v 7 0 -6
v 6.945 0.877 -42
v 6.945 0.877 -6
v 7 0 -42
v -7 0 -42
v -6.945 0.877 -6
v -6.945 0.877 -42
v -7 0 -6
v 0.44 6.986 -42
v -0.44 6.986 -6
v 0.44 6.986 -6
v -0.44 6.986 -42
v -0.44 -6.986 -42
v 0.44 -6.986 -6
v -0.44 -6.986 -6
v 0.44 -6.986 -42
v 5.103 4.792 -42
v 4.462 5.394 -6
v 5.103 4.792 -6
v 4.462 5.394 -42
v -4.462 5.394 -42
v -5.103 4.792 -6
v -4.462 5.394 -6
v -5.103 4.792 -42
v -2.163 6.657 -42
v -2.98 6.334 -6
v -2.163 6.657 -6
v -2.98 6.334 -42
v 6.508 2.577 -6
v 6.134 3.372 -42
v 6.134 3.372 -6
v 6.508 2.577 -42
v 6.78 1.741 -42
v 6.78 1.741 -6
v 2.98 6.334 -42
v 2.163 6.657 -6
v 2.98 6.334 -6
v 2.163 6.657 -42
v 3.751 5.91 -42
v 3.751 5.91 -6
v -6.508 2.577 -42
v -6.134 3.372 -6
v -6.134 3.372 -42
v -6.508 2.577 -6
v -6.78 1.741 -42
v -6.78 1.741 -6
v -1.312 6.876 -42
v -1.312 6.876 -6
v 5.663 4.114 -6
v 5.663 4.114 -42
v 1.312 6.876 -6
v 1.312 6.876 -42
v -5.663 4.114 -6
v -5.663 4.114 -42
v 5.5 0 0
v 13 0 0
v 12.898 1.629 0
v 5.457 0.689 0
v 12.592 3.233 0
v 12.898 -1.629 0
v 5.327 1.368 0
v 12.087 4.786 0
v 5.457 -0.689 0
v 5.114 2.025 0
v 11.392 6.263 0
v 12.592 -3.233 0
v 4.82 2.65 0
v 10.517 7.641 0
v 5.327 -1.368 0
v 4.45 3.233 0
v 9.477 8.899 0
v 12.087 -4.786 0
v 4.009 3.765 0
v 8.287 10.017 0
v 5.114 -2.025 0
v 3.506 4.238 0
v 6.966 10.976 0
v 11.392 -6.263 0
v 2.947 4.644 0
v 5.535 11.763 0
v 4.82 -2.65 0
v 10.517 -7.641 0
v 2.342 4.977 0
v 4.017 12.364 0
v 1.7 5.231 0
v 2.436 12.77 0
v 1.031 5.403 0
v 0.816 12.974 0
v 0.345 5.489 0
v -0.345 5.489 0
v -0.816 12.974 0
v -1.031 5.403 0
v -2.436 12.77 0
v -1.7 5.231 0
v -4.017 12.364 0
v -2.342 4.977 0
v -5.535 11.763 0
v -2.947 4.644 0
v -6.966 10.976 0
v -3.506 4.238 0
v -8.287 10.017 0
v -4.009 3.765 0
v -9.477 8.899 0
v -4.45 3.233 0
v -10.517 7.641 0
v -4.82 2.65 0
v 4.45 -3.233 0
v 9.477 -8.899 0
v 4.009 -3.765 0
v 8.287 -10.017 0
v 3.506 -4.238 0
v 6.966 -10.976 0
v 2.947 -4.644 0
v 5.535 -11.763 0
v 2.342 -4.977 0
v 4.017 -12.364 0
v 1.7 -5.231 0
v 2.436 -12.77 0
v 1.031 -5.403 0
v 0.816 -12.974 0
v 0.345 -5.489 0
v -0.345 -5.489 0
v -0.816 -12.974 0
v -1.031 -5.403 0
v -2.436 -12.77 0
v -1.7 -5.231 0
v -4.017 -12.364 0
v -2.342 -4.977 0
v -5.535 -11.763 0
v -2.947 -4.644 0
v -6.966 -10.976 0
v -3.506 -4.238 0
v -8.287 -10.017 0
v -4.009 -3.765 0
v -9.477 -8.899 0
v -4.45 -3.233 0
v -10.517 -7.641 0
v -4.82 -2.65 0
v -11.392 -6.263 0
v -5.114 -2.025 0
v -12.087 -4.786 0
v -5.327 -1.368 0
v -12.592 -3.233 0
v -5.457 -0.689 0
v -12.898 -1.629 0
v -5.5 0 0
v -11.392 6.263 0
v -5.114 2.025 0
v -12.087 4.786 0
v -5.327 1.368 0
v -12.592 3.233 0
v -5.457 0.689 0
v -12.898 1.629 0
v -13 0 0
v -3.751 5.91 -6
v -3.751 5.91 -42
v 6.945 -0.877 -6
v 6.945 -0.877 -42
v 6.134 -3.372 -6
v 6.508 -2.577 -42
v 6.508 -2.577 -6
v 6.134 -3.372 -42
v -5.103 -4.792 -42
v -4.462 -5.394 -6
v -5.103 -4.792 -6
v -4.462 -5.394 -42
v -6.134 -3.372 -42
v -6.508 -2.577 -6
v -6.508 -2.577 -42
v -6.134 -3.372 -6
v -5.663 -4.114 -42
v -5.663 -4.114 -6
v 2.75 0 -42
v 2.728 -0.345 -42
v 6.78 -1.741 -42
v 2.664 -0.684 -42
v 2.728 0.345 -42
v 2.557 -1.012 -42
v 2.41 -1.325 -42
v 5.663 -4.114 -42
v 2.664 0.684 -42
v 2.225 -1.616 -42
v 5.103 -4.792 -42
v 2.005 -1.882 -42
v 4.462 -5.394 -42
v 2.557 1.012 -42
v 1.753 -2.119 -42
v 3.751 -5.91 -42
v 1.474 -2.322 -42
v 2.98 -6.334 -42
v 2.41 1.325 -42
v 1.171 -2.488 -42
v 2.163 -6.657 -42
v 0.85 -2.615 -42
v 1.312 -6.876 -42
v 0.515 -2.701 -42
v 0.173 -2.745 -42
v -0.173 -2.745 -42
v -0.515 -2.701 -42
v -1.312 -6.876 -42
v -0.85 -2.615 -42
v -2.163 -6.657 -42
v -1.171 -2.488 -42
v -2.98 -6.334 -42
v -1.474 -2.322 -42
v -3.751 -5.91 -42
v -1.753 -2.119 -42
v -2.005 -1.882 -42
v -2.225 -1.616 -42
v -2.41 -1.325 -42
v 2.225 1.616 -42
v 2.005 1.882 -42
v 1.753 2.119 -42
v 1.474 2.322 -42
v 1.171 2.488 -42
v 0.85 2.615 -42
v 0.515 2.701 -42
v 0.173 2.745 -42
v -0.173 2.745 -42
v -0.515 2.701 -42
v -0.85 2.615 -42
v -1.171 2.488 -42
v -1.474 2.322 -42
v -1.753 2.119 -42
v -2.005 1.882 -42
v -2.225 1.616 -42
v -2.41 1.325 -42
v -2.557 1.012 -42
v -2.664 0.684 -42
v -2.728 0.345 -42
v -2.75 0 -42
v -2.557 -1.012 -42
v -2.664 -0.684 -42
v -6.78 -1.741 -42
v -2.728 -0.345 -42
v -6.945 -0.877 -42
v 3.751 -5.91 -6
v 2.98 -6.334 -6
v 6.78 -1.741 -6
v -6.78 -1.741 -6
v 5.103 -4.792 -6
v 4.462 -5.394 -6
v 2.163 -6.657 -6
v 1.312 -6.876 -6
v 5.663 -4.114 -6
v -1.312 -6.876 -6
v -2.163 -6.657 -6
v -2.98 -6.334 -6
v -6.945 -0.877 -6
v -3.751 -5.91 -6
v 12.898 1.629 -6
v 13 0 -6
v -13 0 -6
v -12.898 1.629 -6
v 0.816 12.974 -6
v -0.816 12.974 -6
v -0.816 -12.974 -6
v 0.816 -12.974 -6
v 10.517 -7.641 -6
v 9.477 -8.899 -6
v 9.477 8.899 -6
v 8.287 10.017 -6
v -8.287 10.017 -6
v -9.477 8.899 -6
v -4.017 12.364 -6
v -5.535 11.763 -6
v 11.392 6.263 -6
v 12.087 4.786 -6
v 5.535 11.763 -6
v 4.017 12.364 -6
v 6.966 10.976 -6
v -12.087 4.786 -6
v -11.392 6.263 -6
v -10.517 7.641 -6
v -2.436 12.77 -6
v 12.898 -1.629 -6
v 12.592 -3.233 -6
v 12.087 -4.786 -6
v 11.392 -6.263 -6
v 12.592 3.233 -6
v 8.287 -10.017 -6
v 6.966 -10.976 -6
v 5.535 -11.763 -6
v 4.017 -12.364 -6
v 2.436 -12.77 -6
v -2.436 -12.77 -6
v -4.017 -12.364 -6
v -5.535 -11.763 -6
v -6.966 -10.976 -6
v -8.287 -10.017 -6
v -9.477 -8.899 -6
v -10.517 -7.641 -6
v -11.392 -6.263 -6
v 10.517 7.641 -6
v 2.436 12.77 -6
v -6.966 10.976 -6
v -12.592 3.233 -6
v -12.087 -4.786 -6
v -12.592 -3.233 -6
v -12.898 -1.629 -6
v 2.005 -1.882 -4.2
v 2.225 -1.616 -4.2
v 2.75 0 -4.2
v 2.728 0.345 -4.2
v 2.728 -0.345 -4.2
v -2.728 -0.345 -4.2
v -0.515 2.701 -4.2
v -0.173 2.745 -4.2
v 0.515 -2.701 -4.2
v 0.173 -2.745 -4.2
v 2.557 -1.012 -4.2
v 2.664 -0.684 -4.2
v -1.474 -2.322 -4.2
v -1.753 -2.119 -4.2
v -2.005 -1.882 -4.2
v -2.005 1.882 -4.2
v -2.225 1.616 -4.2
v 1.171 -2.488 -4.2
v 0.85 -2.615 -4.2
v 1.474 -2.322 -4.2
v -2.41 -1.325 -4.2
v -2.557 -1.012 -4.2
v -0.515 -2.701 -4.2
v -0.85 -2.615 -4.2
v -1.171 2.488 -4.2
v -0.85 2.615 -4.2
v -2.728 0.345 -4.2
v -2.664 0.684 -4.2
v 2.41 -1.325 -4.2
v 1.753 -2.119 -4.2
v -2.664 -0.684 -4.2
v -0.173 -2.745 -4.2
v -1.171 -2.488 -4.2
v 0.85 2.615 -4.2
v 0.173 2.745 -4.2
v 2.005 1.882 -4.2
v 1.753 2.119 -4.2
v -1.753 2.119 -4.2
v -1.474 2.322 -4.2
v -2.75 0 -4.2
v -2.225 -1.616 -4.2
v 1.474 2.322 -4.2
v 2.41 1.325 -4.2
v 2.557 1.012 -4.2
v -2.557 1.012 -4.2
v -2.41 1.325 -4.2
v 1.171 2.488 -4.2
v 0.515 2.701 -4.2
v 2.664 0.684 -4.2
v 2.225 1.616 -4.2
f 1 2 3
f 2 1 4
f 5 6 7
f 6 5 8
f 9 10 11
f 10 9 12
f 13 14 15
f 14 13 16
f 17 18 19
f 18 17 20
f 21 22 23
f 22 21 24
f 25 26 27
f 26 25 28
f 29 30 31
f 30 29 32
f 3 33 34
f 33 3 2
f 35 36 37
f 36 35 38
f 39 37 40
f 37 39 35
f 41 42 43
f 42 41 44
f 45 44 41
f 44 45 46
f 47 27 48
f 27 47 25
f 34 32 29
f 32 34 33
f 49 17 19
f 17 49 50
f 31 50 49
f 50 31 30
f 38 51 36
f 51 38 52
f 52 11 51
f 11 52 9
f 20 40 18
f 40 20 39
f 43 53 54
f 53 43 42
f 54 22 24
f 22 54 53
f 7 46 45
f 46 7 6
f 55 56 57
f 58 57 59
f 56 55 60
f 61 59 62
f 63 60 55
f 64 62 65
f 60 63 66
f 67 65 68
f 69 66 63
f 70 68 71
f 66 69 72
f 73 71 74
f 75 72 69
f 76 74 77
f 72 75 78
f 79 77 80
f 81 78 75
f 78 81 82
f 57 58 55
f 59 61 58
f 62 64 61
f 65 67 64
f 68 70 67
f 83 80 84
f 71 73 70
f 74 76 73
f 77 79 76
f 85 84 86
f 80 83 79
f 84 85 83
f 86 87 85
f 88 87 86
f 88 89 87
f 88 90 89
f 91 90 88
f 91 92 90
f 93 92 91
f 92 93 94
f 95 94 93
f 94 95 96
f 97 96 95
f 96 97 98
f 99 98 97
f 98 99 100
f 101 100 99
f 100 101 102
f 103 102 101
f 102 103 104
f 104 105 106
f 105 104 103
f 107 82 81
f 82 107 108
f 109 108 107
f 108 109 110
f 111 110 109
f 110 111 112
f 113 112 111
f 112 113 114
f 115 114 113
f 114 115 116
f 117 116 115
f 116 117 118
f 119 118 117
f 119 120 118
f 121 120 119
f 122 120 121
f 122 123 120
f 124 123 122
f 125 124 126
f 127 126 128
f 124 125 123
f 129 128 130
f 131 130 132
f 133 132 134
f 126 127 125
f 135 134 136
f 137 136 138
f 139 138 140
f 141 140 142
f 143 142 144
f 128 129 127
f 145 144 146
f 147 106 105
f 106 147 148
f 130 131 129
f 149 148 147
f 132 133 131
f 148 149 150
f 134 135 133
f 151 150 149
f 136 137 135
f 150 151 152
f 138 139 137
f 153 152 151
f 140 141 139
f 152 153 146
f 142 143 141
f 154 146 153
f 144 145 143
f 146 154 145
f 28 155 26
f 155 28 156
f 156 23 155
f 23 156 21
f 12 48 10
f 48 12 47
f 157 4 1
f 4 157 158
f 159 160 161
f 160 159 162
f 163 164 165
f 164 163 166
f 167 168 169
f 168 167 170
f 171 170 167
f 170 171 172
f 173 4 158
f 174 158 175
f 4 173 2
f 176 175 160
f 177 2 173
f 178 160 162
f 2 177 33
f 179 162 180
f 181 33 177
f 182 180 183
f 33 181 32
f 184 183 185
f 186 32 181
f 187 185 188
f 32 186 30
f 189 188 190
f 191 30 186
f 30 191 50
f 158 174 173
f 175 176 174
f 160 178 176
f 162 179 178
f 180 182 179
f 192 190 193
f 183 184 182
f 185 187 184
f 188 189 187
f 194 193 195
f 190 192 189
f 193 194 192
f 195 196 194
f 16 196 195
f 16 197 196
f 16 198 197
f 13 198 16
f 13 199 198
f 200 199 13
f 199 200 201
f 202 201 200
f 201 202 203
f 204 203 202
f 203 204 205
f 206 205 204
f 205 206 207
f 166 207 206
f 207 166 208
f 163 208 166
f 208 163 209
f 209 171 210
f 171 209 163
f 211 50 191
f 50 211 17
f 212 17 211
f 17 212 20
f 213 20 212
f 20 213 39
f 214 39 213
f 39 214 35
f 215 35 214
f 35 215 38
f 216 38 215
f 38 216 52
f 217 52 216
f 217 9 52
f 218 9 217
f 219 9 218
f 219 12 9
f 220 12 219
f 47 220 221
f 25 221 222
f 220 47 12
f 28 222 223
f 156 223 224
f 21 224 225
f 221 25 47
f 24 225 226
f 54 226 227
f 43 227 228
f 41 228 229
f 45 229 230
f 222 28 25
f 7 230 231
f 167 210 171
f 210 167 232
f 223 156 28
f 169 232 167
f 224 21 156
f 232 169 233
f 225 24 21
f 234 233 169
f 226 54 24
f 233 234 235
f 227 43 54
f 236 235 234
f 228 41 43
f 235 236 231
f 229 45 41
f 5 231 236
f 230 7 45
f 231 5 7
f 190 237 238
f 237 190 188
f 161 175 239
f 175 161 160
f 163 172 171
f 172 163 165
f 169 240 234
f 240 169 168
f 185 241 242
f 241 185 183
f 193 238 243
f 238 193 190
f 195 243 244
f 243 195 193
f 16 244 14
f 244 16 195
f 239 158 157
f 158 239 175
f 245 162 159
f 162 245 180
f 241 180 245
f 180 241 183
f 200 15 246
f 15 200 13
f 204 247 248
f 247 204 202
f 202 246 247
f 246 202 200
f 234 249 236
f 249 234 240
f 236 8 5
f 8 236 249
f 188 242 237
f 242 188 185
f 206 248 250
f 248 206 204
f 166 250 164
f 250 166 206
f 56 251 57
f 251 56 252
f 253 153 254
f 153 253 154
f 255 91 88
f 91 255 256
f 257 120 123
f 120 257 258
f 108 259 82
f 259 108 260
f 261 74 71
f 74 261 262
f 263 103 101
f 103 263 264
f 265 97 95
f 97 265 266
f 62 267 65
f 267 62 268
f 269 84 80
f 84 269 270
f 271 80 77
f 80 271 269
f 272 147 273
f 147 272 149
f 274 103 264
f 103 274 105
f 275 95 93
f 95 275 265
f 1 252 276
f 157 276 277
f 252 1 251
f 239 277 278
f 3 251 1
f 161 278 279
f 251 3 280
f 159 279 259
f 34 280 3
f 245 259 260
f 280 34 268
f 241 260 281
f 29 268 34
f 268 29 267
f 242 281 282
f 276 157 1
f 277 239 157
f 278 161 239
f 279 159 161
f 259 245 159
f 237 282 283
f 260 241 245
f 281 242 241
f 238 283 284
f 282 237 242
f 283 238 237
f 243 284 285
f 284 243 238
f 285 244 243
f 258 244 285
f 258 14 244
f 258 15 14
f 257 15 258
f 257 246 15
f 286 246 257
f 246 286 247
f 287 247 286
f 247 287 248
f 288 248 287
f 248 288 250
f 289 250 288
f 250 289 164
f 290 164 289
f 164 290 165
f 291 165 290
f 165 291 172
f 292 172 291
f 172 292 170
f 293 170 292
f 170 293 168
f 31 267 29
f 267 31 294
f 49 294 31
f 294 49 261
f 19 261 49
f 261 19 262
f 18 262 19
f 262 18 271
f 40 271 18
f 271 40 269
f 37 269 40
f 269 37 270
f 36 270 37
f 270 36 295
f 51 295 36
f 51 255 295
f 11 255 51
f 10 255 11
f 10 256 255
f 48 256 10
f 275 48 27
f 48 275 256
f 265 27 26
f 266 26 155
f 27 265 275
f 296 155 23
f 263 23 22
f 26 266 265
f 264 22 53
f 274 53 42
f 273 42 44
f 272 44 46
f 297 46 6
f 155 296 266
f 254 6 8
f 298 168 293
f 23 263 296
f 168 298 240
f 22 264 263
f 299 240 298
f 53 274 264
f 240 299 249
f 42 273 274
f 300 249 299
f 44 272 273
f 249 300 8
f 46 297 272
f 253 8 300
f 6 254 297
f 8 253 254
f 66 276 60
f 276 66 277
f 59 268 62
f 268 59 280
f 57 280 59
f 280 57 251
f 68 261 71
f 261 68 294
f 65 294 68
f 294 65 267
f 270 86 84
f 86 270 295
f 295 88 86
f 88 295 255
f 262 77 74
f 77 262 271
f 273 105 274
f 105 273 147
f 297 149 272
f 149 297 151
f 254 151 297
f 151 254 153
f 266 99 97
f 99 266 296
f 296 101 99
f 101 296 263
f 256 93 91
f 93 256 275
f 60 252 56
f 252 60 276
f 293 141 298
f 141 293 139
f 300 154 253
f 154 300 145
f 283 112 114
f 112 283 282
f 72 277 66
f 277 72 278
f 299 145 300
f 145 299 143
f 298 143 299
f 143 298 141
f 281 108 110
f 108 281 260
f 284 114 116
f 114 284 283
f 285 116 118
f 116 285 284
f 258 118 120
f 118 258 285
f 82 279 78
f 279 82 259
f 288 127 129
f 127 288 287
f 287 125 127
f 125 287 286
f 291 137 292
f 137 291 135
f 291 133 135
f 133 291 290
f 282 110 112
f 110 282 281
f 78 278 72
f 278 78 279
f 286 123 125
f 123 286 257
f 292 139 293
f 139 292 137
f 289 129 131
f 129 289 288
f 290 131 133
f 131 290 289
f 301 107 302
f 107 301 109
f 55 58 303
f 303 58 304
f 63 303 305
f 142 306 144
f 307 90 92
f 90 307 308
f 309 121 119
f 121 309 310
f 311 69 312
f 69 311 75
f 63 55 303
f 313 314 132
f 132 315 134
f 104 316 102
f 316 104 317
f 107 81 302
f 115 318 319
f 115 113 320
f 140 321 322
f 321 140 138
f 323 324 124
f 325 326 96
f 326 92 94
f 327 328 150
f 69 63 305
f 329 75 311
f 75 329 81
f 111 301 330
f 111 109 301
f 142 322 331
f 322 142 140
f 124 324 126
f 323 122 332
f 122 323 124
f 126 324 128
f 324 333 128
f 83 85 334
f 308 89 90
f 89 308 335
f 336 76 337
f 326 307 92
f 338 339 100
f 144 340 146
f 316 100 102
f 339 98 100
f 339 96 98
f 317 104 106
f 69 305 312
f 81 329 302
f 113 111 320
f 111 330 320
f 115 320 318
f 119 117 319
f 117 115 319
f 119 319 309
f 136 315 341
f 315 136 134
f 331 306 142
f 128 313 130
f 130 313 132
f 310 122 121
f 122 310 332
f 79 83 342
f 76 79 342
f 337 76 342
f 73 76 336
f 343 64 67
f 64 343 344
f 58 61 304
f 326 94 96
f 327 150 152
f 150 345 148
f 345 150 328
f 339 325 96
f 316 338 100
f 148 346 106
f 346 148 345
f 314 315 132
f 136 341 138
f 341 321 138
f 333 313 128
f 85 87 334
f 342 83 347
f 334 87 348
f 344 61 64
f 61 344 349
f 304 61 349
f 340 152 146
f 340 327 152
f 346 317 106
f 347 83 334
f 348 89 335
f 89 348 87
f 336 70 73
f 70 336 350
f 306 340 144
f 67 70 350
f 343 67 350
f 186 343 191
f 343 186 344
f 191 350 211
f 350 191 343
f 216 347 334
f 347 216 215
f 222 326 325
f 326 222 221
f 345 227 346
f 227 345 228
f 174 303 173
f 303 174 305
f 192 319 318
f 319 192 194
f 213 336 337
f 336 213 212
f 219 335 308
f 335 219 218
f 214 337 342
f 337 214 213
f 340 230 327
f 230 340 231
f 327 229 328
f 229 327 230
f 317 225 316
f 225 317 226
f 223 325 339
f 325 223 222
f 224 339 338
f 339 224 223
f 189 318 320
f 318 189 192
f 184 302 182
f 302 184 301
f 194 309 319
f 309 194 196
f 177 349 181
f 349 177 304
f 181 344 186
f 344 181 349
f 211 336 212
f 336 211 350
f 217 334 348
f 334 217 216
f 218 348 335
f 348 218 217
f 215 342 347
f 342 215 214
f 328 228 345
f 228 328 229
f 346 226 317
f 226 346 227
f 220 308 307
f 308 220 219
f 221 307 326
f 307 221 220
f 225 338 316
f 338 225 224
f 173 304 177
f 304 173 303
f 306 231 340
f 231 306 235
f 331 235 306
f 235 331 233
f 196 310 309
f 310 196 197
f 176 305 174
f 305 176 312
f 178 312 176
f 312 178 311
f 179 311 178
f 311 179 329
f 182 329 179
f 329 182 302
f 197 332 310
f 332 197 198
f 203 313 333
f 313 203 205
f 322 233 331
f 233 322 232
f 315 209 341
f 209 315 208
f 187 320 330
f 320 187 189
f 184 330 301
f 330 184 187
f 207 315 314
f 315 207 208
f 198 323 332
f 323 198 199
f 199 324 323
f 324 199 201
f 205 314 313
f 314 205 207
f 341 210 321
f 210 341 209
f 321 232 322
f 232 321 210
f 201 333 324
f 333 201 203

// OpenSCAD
$fn = 50;


difference() {
	union() {
		translate(v = [0, 0, -42.0000000000]) {
			cylinder(h = 42, r = 7.0000000000);
		}
		translate(v = [0, 0, -6.0000000000]) {
			cylinder(h = 6, r = 13.0000000000);
		}
	}
	union() {
		translate(v = [0, 0, 0]) {
			rotate(a = [0, 0, 0]) {
				difference() {
					union() {
						#translate(v = [0, 0, -42.0000000000]) {
							cylinder(h = 42, r = 2.2500000000);
						}
						#translate(v = [0, 0, -4.2000000000]) {
							cylinder(h = 4.2000000000, r = 7.0000000000, r1 = 2.7500000000, r2 = 5.5000000000);
						}
						#translate(v = [0, 0, -42.0000000000]) {
							cylinder(h = 42, r = 2.7500000000);
						}
						#translate(v = [0, 0, -42.0000000000]) {
							cylinder(h = 42, r = 2.2500000000);
						}
					}
					union();
				}
			}
		}
	}
}
